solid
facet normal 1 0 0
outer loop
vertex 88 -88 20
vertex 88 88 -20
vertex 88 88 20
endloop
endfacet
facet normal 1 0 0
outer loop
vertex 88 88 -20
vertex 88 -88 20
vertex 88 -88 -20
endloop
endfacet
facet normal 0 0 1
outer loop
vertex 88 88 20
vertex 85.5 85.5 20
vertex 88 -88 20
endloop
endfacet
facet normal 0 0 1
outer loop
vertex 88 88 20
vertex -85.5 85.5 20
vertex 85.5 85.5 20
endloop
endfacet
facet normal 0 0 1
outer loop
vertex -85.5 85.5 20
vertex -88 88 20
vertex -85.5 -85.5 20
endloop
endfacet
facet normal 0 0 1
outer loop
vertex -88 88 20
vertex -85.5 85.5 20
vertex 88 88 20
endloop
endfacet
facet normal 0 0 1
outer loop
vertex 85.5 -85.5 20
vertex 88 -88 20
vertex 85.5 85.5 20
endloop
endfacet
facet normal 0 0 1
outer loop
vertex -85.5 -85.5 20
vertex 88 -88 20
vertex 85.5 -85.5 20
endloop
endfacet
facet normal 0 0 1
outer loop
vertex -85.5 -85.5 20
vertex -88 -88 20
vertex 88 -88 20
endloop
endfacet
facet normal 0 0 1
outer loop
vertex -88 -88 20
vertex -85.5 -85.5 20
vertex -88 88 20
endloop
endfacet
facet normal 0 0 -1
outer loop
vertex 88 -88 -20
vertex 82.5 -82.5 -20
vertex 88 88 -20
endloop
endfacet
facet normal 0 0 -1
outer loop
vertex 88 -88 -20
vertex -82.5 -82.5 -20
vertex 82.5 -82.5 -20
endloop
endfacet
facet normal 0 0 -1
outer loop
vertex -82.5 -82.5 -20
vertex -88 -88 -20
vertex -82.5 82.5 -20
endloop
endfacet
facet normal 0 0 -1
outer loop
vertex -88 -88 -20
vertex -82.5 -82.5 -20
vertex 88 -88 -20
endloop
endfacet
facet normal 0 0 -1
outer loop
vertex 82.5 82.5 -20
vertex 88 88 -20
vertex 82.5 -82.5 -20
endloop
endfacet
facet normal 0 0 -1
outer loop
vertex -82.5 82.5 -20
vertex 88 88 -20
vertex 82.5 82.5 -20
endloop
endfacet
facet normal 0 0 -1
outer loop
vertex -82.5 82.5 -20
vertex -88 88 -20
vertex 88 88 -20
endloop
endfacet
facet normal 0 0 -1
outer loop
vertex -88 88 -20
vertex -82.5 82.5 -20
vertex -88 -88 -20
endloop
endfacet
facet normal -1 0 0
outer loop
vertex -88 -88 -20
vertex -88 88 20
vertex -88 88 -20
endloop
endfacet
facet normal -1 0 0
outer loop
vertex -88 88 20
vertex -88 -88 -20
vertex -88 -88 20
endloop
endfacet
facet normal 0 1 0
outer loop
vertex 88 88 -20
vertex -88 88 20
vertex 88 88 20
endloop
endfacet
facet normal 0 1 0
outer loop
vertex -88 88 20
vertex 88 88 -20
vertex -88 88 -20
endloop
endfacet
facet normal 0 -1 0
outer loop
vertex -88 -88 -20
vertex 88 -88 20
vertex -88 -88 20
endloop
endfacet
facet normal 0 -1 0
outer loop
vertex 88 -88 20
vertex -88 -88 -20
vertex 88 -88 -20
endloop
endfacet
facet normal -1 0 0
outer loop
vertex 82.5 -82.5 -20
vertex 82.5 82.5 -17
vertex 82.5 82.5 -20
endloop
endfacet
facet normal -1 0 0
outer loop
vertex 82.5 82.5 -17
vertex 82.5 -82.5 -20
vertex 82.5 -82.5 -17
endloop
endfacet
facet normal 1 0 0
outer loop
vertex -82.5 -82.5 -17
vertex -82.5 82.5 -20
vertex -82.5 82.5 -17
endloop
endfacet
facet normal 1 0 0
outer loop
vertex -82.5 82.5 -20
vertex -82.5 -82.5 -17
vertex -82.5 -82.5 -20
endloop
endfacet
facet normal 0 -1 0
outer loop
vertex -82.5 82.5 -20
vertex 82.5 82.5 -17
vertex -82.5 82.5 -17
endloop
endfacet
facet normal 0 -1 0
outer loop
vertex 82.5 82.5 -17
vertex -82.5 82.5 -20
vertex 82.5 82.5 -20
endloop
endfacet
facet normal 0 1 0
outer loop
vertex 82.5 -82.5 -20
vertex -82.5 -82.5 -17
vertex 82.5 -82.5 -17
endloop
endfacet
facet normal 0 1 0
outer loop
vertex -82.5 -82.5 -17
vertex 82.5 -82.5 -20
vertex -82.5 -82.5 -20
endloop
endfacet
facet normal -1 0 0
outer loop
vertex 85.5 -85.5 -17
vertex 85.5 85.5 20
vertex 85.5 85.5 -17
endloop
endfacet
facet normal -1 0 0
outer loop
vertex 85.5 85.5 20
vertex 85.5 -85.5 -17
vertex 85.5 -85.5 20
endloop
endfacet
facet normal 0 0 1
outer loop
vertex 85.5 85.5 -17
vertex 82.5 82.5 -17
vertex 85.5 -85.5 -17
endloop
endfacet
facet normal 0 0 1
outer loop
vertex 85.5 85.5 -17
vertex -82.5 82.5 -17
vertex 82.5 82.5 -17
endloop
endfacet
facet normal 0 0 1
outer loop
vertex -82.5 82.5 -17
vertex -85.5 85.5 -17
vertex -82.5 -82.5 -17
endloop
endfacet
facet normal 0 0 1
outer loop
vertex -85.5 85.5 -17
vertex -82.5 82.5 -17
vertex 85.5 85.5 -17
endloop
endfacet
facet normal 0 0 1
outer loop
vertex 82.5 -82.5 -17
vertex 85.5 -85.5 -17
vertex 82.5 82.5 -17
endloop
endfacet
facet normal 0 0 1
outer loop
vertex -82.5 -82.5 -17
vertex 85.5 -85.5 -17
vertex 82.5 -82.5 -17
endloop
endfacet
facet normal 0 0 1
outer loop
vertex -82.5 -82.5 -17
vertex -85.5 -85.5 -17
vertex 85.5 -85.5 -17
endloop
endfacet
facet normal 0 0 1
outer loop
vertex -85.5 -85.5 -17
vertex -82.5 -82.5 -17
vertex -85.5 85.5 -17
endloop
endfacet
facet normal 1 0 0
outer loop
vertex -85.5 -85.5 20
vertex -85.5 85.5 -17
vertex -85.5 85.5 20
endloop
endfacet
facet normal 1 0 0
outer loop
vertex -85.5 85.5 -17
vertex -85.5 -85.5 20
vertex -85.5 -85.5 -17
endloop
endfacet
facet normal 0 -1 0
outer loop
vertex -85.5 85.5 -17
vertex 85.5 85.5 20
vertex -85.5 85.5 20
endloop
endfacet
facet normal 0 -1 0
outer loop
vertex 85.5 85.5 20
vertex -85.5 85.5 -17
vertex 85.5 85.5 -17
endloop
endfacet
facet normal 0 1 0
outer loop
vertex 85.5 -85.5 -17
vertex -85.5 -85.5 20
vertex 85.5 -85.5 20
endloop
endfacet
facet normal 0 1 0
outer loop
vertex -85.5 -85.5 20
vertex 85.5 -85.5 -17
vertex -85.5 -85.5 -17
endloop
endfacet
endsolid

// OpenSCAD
difference() {
    cube([176,176,40], center=true);
    cube([165,165,70], center=true);
    translate([0,0,3]) cube([171,171,40], center=true);
    //translate([2.5,2.5,2.5]) cube([170,170,70]);
}
